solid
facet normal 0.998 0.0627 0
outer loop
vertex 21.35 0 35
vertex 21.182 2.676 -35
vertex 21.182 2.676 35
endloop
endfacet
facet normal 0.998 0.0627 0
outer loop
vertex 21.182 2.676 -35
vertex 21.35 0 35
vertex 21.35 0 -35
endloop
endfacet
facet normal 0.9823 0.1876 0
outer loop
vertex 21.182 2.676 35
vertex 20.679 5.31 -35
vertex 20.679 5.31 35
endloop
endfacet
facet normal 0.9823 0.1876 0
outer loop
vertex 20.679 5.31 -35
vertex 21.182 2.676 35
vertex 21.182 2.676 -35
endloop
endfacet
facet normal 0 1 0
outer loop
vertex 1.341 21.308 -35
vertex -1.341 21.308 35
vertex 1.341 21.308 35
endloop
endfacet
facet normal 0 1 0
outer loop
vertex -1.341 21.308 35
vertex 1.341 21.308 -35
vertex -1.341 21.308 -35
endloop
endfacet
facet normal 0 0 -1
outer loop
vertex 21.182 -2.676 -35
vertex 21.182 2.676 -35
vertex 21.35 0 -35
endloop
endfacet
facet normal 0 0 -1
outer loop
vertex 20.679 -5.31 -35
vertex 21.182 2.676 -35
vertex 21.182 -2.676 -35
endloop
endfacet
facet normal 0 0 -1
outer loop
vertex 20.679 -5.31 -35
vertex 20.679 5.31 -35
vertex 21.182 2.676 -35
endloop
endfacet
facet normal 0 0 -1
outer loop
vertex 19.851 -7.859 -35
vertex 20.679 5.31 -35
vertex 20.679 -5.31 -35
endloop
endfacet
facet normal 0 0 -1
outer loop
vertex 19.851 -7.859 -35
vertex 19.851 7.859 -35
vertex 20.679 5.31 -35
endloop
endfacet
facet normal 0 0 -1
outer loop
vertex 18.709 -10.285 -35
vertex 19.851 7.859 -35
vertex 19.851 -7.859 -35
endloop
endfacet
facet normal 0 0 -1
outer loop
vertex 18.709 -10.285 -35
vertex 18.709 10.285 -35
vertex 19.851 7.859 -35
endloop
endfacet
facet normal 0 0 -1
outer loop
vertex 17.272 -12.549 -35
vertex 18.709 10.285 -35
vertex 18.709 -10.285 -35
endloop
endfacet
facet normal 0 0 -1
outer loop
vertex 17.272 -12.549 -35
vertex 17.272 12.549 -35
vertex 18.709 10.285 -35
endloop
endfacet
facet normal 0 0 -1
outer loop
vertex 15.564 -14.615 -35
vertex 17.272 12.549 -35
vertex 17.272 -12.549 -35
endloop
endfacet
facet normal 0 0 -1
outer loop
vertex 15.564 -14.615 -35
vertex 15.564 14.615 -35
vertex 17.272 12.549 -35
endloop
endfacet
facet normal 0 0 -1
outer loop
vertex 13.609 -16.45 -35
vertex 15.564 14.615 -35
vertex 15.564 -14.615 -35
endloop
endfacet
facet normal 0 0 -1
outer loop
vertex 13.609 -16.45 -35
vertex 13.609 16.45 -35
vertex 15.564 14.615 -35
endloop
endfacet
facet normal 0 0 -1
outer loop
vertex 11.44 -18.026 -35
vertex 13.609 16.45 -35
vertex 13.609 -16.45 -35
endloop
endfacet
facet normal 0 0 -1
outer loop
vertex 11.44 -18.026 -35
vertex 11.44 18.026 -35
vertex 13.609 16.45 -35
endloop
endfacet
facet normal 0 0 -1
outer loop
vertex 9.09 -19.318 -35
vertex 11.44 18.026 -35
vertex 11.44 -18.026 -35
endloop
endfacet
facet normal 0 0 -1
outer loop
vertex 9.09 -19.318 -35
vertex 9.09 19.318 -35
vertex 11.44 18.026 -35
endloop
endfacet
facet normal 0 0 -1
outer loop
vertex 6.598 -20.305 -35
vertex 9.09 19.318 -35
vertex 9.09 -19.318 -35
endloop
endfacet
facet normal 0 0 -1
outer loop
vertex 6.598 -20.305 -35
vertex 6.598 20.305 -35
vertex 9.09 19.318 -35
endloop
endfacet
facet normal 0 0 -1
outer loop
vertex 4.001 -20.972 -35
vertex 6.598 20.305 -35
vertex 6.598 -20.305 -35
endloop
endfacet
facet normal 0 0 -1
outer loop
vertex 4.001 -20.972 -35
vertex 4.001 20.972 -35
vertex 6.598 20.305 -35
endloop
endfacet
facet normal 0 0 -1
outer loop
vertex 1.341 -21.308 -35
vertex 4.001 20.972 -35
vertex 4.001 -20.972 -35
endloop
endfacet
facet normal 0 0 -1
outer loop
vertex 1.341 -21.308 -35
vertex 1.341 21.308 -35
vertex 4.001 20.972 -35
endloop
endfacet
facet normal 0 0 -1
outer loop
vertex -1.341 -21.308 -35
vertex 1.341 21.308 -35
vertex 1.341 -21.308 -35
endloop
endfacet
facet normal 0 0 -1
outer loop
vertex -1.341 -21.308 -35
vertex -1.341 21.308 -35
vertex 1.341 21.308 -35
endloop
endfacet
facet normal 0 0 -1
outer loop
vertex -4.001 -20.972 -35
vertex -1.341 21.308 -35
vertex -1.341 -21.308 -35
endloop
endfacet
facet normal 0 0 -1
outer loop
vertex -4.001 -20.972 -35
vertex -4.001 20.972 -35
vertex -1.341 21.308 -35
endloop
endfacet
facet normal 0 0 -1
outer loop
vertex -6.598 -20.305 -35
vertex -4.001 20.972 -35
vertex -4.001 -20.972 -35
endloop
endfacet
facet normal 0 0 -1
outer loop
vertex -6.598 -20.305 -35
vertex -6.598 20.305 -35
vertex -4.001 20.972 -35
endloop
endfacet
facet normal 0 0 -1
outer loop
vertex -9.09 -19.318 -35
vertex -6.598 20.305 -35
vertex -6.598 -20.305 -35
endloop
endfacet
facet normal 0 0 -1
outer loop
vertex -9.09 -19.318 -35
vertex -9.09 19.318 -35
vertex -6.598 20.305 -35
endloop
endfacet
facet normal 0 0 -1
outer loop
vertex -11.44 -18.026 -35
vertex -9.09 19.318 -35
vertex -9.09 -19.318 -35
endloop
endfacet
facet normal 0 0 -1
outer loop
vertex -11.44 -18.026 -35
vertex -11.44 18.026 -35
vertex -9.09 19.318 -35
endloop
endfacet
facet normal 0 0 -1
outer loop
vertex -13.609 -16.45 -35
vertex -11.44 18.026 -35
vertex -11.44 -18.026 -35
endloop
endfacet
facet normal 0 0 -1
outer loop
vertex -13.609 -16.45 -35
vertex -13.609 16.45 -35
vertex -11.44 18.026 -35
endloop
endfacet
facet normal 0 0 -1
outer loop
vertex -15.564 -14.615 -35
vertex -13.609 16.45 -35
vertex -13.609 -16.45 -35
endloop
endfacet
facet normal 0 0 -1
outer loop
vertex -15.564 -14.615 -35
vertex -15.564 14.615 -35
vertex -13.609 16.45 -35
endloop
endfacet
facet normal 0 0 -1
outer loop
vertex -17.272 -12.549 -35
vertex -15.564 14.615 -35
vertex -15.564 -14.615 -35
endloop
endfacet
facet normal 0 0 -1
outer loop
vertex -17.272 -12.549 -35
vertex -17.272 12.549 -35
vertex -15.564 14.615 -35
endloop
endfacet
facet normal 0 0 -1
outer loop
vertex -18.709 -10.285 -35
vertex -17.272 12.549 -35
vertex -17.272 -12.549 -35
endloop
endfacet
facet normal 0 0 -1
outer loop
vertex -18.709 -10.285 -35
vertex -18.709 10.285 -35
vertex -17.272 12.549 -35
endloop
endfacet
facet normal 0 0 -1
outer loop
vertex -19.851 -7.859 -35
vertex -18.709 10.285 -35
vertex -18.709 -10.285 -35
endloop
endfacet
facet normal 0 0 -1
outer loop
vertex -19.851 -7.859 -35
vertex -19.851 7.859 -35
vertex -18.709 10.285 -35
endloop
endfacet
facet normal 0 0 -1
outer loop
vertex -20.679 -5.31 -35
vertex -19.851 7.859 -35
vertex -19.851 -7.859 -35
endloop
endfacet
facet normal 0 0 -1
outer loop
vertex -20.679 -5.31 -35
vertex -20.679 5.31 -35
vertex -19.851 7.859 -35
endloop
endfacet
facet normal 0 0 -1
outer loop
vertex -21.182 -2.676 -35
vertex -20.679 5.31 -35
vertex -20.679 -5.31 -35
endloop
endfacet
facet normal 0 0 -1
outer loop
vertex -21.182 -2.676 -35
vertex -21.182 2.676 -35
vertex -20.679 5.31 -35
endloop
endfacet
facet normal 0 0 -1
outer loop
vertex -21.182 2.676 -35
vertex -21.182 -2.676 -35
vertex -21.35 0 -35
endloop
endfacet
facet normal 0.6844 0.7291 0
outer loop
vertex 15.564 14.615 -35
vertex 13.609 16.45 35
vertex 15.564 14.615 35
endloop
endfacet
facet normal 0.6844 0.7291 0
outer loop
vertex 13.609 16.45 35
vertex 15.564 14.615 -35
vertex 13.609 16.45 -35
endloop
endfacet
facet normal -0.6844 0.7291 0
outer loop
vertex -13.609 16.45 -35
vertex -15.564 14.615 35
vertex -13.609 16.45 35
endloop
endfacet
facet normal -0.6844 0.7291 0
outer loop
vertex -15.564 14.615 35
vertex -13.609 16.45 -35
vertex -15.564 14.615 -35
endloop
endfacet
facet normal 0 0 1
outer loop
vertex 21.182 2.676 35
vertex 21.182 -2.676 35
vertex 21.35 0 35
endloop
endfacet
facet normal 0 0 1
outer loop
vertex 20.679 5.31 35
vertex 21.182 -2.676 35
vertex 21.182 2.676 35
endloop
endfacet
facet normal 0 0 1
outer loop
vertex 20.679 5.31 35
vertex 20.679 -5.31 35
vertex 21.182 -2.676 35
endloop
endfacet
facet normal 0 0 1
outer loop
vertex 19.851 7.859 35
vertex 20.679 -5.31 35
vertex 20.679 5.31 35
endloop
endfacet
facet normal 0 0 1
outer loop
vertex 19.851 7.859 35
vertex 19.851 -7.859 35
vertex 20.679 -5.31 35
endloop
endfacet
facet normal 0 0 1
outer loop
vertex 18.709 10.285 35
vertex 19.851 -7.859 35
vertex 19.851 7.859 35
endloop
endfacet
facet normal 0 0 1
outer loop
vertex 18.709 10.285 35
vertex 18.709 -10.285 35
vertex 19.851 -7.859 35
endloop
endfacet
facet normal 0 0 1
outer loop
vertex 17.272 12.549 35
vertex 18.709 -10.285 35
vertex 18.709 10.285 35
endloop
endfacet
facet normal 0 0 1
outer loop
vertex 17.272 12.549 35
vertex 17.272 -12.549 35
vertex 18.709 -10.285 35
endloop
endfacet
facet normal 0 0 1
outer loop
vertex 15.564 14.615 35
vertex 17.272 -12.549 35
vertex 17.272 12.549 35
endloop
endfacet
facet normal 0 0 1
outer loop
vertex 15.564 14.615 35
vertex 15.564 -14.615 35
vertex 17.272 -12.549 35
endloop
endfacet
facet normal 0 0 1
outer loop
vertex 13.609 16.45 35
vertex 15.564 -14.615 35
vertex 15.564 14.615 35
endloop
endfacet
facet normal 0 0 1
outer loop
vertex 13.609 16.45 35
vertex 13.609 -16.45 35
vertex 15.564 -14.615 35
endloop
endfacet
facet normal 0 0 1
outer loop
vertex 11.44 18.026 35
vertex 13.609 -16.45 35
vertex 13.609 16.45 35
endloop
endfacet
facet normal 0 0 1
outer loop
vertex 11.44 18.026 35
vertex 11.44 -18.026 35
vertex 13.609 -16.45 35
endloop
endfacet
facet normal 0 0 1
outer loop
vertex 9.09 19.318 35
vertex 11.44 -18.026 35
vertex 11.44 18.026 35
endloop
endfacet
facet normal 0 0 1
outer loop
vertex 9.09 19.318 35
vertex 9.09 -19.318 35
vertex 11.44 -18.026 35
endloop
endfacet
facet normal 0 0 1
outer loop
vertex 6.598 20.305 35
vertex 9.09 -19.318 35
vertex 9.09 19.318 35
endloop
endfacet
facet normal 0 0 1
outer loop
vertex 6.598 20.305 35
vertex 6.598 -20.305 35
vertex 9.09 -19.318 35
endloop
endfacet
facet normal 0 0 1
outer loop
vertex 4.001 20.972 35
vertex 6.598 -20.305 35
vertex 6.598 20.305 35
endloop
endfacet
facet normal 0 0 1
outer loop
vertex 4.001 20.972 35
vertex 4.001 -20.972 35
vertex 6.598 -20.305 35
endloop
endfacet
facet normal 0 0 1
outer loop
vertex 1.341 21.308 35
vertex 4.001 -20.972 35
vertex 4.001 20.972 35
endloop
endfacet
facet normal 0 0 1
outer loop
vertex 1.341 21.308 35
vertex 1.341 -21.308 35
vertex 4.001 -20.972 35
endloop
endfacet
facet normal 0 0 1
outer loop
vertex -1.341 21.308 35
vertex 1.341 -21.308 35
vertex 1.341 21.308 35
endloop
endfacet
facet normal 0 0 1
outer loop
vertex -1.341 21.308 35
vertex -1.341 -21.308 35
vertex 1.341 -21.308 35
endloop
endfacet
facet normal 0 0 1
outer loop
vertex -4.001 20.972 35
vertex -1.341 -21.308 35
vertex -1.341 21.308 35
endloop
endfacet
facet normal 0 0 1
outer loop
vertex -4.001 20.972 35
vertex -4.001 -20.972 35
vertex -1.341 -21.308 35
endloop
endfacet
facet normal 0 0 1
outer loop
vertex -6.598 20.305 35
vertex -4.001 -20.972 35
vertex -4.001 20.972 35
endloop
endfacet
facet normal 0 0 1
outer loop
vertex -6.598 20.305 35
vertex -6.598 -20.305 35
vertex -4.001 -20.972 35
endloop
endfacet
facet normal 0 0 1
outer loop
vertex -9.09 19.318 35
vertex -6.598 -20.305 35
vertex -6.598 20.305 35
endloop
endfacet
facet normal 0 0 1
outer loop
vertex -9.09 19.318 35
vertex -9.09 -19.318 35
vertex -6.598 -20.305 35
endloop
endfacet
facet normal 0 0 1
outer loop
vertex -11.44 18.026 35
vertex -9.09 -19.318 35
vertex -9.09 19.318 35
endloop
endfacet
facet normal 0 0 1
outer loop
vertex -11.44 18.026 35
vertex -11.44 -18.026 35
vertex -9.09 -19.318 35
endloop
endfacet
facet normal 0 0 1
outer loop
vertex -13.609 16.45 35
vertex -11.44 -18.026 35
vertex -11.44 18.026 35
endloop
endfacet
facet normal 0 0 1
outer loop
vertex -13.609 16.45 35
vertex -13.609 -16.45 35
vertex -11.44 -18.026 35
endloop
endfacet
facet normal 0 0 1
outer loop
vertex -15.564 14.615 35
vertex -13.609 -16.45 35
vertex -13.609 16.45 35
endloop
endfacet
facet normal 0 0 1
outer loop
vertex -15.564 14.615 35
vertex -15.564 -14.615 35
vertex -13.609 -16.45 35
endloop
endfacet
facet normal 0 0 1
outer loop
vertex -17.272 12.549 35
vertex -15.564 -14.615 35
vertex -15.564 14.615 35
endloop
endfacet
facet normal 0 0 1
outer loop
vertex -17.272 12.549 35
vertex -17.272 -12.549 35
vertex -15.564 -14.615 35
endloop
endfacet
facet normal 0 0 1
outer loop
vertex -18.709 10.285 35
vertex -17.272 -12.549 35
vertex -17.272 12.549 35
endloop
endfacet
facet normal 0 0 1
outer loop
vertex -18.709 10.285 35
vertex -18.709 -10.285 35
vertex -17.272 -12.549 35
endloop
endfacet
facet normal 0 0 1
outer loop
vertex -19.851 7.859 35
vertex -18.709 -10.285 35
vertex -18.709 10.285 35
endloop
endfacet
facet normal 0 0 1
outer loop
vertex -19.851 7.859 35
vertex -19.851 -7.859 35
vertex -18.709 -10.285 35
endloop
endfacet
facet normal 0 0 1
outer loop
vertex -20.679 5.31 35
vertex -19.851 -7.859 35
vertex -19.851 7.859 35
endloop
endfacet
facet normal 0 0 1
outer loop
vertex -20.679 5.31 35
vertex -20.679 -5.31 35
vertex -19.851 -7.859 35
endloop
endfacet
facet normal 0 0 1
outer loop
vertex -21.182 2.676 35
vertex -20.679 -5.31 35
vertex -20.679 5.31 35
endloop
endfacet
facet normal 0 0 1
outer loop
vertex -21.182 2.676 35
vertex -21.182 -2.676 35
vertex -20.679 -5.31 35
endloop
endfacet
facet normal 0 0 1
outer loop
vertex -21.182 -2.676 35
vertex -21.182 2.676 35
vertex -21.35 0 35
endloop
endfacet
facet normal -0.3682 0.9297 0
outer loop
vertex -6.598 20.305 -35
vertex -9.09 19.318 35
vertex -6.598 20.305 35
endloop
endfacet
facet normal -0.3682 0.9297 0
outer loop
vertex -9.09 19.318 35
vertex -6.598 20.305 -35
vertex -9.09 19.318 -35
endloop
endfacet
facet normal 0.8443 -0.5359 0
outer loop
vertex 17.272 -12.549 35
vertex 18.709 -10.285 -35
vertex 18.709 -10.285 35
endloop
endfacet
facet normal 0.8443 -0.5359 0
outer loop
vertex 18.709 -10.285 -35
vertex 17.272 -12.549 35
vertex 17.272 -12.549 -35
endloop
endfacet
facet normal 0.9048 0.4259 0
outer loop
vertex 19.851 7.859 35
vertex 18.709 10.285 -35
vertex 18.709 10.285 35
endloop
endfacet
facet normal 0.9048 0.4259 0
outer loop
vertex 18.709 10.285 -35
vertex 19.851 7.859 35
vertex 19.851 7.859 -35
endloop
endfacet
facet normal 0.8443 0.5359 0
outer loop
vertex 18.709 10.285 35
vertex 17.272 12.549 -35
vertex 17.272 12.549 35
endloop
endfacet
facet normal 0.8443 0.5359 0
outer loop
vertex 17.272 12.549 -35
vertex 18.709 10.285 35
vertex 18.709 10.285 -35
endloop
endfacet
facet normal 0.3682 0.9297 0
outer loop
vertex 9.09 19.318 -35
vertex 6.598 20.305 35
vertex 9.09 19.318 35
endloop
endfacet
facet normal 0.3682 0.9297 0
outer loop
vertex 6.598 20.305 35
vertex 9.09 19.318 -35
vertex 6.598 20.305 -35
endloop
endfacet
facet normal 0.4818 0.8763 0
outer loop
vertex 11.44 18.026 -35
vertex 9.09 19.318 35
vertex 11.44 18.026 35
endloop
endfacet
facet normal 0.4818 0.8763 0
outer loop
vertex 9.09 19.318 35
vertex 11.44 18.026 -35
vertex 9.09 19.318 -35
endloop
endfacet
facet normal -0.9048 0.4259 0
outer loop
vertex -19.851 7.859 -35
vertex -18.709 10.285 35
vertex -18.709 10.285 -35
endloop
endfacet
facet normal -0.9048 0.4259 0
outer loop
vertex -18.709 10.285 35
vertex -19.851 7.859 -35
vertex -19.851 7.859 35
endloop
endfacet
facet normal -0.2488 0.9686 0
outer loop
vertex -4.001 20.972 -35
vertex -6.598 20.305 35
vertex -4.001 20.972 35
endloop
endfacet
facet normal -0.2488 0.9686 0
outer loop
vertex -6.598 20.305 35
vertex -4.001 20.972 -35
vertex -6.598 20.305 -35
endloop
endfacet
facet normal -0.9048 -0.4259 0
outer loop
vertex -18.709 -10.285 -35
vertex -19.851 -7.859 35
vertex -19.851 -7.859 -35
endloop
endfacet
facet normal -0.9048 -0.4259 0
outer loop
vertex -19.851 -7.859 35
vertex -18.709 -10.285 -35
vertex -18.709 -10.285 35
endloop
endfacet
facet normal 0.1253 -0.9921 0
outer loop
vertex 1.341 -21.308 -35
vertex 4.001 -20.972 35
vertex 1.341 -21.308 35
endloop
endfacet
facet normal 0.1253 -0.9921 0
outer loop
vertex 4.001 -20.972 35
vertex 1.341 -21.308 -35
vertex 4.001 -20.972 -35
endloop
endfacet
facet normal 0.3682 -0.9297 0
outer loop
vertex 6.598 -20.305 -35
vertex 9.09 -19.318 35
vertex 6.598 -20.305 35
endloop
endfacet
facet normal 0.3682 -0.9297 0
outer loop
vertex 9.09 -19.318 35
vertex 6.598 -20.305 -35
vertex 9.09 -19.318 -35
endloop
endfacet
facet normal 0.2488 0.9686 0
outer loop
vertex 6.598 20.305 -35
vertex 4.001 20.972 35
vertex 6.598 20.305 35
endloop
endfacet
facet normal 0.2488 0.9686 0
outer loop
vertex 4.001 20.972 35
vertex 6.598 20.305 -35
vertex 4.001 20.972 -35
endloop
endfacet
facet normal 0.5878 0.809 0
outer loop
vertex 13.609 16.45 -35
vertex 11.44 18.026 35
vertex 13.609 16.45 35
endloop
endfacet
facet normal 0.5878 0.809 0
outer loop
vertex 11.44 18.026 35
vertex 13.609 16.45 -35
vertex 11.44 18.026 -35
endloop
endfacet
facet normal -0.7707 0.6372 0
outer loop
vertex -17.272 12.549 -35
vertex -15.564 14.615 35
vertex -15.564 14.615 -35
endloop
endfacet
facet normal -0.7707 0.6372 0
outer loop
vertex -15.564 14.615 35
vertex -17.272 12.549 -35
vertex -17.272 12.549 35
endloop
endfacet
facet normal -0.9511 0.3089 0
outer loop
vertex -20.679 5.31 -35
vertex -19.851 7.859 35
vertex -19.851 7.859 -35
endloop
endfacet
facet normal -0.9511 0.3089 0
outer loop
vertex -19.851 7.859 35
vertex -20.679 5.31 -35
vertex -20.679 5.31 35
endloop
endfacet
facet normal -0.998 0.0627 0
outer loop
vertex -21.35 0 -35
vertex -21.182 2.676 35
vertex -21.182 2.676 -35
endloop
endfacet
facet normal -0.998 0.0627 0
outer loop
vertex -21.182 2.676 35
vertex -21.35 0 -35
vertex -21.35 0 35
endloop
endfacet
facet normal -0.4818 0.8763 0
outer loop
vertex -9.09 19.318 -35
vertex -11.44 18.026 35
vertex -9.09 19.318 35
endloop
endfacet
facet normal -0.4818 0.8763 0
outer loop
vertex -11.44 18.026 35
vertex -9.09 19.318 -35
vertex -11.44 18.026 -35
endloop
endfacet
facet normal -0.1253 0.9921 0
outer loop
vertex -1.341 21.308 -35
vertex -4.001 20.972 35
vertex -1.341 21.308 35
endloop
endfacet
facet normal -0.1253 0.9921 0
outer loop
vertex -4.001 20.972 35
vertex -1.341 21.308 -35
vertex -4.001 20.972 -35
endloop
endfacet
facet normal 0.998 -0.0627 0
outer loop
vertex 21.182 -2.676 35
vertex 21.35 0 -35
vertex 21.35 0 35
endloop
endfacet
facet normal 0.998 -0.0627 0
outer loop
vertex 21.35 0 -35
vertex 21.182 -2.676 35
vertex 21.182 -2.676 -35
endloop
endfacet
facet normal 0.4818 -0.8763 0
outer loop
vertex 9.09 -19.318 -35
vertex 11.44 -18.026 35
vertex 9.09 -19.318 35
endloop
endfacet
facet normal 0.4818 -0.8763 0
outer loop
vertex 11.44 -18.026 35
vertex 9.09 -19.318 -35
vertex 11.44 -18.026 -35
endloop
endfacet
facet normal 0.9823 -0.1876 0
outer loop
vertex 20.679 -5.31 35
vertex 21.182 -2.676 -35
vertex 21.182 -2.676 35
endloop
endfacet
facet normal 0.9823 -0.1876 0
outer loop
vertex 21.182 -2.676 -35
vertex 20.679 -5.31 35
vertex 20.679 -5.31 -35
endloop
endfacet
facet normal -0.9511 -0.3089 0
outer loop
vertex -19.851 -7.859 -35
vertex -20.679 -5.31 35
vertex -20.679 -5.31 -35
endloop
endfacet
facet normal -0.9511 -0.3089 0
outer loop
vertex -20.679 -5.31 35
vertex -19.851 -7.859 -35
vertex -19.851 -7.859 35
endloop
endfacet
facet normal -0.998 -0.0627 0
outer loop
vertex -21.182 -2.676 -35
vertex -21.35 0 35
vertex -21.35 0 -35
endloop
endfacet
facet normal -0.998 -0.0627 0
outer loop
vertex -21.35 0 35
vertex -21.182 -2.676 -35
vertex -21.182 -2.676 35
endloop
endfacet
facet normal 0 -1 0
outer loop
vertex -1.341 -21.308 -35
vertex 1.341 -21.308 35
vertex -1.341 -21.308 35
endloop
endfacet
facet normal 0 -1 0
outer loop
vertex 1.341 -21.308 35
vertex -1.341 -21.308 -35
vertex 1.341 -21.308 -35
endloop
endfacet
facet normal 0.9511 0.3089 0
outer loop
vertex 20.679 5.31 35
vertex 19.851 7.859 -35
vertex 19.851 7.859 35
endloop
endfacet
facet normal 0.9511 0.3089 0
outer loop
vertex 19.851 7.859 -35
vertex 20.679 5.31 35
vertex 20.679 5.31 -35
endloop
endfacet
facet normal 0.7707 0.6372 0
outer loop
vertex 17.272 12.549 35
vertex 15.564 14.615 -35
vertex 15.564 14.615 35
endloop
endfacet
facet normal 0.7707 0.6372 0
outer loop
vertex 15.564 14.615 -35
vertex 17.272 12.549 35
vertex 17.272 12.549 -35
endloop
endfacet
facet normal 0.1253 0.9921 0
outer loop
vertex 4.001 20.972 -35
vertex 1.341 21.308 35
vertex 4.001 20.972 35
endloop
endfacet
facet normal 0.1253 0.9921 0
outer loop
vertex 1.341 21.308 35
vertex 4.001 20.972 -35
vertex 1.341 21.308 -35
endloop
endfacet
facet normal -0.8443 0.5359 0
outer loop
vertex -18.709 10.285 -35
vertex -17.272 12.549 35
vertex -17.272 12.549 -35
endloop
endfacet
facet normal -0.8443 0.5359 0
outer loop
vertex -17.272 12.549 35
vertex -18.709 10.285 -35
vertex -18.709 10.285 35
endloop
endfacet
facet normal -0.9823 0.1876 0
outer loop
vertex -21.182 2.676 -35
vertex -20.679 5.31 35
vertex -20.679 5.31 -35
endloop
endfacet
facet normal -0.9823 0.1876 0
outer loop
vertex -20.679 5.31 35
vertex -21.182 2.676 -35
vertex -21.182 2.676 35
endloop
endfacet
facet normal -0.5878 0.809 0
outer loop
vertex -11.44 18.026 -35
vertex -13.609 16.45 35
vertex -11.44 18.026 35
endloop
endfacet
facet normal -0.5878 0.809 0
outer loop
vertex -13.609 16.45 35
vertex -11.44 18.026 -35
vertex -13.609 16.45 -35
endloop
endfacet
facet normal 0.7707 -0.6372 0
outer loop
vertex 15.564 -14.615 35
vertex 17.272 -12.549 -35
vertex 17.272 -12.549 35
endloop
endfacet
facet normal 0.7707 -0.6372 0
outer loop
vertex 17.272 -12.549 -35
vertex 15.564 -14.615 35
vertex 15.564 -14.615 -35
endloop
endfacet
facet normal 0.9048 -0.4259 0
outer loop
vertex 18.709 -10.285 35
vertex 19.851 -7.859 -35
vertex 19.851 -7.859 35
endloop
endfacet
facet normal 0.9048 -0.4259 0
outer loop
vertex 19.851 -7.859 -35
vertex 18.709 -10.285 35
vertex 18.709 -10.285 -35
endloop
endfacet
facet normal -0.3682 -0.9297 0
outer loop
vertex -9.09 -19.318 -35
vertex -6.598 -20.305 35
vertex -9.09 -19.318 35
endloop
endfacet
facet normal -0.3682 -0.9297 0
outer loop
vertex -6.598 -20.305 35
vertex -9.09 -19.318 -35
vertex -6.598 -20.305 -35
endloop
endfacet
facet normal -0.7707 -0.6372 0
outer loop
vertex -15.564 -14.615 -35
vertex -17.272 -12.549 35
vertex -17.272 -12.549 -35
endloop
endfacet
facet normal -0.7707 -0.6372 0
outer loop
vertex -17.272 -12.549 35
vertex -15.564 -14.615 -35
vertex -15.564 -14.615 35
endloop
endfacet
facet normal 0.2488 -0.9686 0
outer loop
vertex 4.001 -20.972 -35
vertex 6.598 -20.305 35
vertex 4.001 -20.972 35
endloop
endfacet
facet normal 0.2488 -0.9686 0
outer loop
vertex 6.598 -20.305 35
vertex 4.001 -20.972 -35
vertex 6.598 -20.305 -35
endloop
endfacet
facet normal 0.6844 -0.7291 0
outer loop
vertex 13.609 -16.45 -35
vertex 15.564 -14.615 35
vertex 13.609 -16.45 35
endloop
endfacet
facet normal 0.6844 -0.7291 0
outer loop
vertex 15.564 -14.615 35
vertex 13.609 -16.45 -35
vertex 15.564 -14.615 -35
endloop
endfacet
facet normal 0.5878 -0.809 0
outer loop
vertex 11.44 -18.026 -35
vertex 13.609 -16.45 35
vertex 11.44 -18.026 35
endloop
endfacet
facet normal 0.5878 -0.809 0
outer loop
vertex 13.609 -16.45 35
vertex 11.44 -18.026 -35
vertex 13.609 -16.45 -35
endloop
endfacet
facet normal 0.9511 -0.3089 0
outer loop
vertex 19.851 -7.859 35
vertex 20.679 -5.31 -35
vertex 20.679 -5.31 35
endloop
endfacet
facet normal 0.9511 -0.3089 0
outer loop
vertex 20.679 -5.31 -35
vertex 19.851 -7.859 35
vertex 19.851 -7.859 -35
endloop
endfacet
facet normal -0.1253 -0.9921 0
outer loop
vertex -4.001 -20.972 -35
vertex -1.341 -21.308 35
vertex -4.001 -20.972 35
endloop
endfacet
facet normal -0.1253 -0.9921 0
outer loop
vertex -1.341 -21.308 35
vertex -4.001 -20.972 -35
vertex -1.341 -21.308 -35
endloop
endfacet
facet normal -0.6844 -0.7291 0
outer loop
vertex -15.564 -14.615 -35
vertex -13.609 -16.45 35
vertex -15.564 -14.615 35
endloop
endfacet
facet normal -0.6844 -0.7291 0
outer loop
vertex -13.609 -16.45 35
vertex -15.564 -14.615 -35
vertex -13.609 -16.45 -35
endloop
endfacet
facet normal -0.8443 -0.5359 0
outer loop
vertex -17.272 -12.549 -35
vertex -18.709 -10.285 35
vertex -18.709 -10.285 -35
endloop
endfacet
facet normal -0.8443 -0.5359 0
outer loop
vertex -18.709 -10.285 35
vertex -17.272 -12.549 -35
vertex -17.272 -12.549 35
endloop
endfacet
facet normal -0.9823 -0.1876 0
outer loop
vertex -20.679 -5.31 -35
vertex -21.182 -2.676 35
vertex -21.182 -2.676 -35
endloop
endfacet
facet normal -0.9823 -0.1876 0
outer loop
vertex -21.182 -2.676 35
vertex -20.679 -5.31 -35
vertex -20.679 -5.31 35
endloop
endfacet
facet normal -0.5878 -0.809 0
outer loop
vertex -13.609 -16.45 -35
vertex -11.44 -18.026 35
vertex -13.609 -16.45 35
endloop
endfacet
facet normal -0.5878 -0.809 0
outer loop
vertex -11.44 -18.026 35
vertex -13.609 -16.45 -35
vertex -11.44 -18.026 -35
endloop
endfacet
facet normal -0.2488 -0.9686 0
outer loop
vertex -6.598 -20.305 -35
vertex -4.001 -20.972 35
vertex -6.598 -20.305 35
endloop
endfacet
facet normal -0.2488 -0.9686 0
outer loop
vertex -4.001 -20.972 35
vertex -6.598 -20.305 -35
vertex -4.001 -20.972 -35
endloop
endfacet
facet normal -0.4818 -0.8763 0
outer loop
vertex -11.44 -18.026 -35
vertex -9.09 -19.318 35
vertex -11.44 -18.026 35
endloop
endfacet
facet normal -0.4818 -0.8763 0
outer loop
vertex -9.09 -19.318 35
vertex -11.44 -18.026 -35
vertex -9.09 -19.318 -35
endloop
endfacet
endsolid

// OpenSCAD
$fn = 50;


difference() {
	union() {
		translate(v = [0, 0, -35.0000000000]) {
			cylinder(h = 70, r = 21.3500000000);
		}
	}
	union() {
		translate(v = [0, 0, -100.0000000000]) {
			cylinder(h = 200, r = 0);
		}
	}
}
